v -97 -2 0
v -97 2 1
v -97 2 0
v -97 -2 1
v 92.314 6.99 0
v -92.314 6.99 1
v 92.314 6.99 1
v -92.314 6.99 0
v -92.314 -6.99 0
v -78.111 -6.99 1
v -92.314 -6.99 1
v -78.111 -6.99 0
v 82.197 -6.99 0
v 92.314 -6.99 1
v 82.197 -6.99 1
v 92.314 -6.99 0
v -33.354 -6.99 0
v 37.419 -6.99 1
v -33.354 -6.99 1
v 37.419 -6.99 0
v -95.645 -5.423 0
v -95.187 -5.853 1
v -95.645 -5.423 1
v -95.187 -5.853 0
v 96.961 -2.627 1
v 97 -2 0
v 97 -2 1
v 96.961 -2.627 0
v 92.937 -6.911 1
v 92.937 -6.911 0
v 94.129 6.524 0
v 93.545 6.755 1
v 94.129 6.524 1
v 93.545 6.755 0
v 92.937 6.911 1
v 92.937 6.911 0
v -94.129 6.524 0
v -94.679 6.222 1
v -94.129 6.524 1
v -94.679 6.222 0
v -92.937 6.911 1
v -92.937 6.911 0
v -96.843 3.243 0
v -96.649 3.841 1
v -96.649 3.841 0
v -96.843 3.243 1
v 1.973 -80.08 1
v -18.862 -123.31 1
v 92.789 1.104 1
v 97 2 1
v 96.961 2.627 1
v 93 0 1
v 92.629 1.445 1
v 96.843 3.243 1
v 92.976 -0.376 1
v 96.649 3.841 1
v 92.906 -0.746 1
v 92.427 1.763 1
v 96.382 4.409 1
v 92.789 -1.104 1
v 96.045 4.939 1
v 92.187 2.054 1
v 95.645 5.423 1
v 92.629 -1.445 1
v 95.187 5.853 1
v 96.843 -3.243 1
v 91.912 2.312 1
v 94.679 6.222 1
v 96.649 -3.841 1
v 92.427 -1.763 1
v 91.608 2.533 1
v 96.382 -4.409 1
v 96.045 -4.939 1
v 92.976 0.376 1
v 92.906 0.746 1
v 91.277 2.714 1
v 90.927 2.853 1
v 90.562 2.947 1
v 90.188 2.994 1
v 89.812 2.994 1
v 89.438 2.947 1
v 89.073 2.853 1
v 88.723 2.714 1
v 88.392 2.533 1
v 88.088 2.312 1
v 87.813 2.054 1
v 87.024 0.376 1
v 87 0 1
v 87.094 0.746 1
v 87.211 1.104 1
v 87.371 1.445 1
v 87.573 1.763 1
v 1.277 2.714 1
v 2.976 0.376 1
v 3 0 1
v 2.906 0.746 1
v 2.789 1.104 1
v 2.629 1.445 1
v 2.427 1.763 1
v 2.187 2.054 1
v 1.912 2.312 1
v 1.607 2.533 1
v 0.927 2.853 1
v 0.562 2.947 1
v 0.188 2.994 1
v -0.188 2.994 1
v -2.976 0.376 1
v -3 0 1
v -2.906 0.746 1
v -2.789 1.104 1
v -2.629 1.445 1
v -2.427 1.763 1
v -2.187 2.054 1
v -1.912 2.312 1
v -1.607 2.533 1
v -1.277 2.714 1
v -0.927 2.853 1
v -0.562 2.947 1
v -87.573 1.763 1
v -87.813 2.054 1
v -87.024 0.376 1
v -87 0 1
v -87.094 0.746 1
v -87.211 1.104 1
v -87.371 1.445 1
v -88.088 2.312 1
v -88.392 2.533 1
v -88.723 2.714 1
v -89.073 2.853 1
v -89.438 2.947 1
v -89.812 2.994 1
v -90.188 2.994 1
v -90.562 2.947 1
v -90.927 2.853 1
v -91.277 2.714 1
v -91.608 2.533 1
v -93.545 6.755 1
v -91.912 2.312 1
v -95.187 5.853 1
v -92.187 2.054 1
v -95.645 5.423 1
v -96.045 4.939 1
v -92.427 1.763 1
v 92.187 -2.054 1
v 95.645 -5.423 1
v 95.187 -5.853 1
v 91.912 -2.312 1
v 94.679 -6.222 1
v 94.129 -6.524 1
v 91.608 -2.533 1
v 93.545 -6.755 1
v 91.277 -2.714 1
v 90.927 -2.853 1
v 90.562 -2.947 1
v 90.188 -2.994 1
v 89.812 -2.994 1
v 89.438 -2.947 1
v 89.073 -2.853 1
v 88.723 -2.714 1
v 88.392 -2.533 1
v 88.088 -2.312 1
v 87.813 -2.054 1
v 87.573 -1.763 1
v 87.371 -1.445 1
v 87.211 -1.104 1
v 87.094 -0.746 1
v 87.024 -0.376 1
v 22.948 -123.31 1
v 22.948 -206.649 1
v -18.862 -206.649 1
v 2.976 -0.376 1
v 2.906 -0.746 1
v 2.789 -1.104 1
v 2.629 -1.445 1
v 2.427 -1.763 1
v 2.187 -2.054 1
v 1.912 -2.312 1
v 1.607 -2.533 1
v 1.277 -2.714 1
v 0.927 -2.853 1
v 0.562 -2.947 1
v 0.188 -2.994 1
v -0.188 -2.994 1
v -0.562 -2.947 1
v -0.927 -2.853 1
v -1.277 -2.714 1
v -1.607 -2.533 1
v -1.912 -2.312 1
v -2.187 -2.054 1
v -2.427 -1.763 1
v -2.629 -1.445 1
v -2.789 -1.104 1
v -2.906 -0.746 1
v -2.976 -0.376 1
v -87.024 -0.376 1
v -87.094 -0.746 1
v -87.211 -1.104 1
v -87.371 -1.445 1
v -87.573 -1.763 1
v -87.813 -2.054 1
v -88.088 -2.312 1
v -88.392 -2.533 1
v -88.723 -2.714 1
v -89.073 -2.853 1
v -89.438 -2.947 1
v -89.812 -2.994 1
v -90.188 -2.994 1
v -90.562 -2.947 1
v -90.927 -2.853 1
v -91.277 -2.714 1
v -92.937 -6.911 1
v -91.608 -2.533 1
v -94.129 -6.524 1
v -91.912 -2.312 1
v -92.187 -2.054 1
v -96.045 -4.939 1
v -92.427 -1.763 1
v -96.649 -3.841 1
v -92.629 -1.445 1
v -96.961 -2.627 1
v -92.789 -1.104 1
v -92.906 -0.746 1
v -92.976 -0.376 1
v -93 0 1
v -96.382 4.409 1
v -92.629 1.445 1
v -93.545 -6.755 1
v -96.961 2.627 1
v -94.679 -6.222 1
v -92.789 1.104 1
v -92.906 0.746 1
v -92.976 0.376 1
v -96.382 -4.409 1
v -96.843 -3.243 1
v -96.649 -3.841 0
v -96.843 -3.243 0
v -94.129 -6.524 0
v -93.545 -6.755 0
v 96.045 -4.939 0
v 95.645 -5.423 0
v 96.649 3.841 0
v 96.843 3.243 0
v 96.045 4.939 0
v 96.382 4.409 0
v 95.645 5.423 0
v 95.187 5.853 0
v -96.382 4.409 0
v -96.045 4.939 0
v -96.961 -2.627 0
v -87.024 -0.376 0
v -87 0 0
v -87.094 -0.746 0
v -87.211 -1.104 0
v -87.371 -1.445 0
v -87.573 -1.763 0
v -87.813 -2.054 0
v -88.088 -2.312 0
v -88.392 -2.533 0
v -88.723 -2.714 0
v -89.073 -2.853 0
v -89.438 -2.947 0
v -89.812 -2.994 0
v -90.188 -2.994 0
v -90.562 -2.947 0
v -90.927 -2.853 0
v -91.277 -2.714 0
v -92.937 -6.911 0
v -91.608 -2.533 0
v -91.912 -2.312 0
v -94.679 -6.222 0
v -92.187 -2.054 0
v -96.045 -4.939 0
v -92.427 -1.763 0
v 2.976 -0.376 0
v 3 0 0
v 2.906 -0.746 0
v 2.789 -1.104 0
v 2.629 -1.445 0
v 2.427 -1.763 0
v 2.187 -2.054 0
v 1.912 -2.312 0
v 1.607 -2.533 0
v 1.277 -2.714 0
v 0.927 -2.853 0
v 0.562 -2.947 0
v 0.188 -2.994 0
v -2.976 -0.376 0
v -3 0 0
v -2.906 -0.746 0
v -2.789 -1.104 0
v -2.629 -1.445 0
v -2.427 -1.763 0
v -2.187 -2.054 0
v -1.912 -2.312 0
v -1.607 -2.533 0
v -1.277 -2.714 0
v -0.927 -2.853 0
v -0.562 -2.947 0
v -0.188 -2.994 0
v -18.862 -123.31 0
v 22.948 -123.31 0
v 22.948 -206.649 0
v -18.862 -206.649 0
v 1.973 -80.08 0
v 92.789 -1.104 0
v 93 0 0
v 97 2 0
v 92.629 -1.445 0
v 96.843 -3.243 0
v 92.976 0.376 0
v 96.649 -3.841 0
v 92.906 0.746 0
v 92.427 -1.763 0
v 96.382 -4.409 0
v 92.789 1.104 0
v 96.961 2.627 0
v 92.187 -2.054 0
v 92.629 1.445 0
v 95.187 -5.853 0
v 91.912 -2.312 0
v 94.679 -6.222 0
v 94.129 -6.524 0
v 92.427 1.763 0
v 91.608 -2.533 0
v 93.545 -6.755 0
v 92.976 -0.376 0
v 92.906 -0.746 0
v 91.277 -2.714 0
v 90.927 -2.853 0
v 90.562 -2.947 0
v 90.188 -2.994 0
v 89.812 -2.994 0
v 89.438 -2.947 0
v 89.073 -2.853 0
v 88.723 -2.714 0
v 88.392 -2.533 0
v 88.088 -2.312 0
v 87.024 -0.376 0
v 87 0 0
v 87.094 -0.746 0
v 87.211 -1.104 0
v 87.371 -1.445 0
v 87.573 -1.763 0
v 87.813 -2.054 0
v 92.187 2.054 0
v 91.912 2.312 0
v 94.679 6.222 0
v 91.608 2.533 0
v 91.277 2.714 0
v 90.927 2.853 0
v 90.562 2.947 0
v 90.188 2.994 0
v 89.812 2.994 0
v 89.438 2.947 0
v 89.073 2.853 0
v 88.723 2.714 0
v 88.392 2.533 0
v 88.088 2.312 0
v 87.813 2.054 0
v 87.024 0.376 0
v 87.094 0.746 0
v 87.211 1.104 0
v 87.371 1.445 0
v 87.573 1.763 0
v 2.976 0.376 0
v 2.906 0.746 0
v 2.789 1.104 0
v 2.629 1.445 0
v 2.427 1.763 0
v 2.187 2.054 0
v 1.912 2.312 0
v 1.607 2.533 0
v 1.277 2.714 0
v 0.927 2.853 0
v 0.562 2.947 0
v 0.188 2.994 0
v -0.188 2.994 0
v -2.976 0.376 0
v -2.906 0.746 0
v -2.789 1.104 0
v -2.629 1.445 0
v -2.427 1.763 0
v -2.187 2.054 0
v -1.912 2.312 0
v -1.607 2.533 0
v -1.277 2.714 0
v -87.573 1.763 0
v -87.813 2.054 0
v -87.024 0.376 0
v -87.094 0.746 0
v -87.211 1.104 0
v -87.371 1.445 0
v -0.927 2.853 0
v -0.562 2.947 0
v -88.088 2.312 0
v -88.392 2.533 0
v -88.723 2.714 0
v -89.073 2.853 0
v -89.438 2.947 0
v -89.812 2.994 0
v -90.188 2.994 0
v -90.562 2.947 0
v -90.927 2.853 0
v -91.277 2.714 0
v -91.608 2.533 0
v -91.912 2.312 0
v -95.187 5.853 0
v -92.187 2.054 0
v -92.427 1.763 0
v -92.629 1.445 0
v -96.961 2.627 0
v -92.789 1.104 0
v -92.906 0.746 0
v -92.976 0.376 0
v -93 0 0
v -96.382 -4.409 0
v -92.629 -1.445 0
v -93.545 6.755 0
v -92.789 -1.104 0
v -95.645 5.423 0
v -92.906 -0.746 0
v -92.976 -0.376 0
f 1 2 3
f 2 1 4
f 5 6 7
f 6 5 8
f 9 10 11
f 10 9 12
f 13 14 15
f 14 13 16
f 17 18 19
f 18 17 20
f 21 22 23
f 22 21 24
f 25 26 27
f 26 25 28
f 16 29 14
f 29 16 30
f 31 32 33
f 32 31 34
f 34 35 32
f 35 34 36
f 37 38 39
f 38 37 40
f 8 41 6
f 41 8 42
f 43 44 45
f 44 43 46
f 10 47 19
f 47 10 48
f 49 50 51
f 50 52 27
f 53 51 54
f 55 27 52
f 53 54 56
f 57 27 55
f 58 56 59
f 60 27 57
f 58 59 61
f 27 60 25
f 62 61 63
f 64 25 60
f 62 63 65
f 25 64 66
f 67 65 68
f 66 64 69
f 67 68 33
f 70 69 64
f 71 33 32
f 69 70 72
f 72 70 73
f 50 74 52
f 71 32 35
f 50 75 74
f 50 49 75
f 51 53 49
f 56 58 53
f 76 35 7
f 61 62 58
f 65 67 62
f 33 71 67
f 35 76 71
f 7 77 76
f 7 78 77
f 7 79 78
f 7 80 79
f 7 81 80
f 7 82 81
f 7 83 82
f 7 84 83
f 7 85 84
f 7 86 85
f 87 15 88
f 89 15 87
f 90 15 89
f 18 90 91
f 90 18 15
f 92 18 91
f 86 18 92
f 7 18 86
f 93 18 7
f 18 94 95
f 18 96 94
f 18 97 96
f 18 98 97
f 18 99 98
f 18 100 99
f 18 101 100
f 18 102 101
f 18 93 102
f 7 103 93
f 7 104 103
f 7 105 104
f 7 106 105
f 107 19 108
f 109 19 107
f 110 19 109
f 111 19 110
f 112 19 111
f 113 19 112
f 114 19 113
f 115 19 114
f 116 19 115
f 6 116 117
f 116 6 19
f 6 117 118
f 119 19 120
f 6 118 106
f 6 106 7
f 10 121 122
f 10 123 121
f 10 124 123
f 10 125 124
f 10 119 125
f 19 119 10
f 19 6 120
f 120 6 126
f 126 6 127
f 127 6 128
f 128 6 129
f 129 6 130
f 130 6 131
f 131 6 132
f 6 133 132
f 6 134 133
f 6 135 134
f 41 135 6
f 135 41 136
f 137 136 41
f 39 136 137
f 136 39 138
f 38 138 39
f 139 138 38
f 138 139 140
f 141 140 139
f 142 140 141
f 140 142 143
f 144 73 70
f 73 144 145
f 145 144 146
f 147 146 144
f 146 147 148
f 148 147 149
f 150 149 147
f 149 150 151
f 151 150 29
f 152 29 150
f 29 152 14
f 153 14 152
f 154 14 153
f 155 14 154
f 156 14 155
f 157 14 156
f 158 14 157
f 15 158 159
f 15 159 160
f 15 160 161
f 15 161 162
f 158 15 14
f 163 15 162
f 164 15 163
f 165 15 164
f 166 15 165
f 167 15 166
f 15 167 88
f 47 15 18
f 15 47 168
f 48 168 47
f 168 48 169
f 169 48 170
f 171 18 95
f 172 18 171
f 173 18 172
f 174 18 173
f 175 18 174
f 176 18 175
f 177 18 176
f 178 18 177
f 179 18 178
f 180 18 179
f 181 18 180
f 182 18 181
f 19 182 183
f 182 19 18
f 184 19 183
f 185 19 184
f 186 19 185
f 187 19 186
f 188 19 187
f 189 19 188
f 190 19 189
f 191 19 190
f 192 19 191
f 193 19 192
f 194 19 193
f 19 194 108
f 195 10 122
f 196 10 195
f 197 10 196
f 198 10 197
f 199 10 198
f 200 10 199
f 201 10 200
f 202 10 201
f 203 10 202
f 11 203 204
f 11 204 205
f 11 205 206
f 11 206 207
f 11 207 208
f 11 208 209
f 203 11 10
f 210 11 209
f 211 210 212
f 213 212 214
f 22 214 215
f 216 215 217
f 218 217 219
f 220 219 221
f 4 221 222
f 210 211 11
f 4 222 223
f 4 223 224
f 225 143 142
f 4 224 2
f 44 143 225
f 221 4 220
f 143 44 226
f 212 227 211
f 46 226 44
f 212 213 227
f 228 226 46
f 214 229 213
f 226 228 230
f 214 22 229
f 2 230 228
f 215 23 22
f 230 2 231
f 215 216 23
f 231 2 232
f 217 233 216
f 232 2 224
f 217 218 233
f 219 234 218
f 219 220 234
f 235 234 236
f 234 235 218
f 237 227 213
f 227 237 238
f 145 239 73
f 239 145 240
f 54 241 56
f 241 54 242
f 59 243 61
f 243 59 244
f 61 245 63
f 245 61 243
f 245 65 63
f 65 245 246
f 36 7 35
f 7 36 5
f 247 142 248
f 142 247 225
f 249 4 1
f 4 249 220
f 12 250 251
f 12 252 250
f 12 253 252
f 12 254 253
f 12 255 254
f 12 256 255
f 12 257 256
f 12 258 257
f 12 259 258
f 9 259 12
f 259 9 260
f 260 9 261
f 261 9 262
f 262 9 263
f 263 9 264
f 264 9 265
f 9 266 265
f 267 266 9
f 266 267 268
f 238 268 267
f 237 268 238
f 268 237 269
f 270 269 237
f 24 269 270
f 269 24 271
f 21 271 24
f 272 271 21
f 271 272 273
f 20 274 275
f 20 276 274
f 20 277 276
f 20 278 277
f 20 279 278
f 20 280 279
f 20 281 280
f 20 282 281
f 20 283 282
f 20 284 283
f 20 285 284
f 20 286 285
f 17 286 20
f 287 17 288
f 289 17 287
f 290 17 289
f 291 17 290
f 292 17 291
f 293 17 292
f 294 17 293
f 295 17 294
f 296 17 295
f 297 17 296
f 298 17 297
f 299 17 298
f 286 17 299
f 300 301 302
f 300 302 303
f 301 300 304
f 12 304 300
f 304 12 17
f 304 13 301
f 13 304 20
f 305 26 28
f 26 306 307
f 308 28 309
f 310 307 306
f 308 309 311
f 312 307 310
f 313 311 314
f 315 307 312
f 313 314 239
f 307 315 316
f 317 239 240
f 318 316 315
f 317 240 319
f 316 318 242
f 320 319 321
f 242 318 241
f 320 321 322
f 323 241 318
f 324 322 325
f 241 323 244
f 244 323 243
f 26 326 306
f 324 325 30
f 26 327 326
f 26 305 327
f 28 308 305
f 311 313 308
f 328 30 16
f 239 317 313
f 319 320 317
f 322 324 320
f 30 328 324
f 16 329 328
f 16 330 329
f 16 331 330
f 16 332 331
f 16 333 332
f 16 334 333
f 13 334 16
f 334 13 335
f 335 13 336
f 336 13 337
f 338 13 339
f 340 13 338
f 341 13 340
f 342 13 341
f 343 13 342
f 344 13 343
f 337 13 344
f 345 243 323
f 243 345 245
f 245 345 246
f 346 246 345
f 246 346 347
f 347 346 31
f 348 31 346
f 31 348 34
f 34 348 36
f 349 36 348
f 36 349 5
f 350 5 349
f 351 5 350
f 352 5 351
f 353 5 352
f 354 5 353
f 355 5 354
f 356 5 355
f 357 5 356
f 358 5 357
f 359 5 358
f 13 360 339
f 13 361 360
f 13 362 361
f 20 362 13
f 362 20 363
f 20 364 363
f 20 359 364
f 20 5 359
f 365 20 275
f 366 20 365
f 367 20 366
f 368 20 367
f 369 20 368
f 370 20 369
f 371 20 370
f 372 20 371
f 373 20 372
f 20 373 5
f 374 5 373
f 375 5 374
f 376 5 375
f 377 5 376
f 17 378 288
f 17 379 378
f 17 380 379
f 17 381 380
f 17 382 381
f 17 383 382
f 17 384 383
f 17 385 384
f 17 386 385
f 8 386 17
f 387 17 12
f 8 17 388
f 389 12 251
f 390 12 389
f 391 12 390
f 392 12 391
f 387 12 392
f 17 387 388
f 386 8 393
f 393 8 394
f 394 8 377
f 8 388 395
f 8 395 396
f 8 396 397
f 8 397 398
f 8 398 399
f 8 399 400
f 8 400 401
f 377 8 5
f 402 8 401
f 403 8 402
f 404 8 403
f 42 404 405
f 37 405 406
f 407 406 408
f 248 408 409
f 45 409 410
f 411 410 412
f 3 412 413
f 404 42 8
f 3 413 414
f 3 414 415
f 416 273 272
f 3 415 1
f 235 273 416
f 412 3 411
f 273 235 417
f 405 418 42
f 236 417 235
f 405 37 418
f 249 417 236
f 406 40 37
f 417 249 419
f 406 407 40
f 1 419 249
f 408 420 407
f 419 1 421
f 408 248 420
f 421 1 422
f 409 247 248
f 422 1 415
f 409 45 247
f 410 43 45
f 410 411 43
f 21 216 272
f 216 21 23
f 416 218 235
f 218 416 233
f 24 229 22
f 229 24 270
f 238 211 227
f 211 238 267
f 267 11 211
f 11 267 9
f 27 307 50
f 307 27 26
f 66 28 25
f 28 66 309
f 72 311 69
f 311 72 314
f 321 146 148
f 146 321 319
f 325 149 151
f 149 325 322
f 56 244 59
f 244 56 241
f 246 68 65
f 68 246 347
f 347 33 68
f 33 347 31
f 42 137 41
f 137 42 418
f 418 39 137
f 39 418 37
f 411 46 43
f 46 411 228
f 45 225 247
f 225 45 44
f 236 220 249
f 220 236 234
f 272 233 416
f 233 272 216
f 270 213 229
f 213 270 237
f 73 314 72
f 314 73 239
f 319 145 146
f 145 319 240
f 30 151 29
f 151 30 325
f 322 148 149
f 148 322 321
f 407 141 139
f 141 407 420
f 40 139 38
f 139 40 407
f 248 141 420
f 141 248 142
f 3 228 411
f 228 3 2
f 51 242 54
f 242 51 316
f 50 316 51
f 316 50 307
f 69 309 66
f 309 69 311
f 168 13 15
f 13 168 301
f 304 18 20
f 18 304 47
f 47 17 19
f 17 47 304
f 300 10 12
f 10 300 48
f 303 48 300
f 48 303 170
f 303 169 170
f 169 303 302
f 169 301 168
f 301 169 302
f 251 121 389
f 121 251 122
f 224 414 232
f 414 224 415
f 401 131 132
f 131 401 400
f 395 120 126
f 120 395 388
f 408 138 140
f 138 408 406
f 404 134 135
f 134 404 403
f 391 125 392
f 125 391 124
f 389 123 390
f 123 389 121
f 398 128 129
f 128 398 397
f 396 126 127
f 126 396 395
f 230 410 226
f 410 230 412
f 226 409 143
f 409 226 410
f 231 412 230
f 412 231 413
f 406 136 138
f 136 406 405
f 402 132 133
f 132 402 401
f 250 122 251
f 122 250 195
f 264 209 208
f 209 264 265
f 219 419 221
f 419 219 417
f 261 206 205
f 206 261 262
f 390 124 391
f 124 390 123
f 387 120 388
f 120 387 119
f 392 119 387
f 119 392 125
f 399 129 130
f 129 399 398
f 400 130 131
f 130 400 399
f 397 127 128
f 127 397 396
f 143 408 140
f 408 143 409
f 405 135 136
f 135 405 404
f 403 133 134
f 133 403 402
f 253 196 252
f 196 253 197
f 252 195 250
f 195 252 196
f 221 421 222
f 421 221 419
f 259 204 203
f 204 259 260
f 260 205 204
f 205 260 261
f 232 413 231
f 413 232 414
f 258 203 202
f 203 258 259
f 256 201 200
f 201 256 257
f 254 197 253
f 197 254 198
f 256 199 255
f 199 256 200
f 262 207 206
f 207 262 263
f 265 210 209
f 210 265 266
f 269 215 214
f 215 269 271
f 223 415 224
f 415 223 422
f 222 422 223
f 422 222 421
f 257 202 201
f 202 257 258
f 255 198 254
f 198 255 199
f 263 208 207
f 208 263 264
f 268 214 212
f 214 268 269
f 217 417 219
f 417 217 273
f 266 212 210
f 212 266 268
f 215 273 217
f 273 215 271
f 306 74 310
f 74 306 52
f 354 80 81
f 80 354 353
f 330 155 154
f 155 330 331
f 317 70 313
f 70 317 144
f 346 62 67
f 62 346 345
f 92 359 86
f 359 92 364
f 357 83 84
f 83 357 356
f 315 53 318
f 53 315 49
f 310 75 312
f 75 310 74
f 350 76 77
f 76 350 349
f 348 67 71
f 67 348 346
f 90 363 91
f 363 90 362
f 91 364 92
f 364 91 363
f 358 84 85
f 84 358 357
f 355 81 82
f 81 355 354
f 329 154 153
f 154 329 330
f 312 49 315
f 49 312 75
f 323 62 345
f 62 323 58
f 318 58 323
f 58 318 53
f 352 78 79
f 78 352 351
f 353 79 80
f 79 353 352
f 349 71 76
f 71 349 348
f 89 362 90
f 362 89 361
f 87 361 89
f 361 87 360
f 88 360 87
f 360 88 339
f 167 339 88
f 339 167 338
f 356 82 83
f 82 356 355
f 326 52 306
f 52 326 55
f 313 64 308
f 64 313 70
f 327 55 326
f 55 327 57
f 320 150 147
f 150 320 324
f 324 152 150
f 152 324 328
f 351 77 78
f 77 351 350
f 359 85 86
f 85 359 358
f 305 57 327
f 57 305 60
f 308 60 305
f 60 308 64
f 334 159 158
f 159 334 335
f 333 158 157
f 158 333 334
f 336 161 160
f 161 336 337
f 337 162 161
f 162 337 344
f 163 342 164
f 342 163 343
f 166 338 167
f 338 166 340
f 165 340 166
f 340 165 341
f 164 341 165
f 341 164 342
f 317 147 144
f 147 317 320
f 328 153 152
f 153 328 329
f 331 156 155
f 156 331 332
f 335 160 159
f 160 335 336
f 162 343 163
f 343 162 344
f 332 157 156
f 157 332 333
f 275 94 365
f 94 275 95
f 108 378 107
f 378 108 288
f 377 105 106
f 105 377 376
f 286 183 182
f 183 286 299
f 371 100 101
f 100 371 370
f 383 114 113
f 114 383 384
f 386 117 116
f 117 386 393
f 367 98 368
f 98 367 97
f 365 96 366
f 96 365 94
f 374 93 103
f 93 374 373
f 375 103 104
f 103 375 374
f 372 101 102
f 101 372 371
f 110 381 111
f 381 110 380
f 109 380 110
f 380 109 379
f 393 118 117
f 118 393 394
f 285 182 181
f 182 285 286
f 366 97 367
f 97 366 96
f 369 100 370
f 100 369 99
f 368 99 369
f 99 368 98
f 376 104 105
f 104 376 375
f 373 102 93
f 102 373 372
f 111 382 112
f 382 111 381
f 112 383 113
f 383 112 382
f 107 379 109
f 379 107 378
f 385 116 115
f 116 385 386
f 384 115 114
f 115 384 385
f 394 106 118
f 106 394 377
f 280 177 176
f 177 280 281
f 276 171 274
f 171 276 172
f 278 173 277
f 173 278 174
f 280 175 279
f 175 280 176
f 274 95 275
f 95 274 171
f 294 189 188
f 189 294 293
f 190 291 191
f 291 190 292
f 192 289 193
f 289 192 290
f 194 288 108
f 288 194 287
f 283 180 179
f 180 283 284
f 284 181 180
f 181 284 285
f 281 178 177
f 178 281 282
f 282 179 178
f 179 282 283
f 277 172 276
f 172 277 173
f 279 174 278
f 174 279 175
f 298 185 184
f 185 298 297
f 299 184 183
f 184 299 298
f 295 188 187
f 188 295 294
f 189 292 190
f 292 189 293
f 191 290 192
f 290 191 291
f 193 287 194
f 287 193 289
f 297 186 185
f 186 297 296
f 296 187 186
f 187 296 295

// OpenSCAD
$fn = 50;


difference() {
	union() {
		translate(v = [0, 0, 0]) {
			rotate(a = [0, 0, 0]) {
				hull() {
					translate(v = [-92.0000000000, 2.0000000000, 0]) {
						rotate(a = [0, 0, 0]) {
							translate(v = [0, 0, 0]) {
								rotate(a = [0, 0, 0]) {
									cylinder(h = 1, r = 5);
								}
							}
						}
					}
					translate(v = [92.0000000000, 2.0000000000, 0]) {
						rotate(a = [0, 0, 0]) {
							translate(v = [0, 0, 0]) {
								rotate(a = [0, 0, 0]) {
									cylinder(h = 1, r = 5);
								}
							}
						}
					}
					translate(v = [-92.0000000000, -2.0000000000, 0]) {
						rotate(a = [0, 0, 0]) {
							translate(v = [0, 0, 0]) {
								rotate(a = [0, 0, 0]) {
									cylinder(h = 1, r = 5);
								}
							}
						}
					}
					translate(v = [92.0000000000, -2.0000000000, 0]) {
						rotate(a = [0, 0, 0]) {
							translate(v = [0, 0, 0]) {
								rotate(a = [0, 0, 0]) {
									cylinder(h = 1, r = 5);
								}
							}
						}
					}
				}
			}
		}
		translate(v = [0, 0, 0]) {
			rotate(a = [0, 0, 0]) {
				linear_extrude(height = 1) {
					text(font = "DejaVu Sans Mono:style=Bold", halign = "center", size = 209.0000000000, text = "Y", valign = "top");
				}
			}
		}
	}
	union() {
		translate(v = [-90.0000000000, 0.0000000000, -125.0000000000]) {
			rotate(a = [0, 0, 0]) {
				cylinder(h = 250, r = 3.0000000000);
			}
		}
		translate(v = [90.0000000000, 0.0000000000, -125.0000000000]) {
			rotate(a = [0, 0, 0]) {
				cylinder(h = 250, r = 3.0000000000);
			}
		}
		translate(v = [90.0000000000, 0.0000000000, -125.0000000000]) {
			rotate(a = [0, 0, 0]) {
				cylinder(h = 250, r = 3.0000000000);
			}
		}
		translate(v = [0, 0, -125.0000000000]) {
			rotate(a = [0, 0, 0]) {
				cylinder(h = 250, r = 3.0000000000);
			}
		}
	}
}
